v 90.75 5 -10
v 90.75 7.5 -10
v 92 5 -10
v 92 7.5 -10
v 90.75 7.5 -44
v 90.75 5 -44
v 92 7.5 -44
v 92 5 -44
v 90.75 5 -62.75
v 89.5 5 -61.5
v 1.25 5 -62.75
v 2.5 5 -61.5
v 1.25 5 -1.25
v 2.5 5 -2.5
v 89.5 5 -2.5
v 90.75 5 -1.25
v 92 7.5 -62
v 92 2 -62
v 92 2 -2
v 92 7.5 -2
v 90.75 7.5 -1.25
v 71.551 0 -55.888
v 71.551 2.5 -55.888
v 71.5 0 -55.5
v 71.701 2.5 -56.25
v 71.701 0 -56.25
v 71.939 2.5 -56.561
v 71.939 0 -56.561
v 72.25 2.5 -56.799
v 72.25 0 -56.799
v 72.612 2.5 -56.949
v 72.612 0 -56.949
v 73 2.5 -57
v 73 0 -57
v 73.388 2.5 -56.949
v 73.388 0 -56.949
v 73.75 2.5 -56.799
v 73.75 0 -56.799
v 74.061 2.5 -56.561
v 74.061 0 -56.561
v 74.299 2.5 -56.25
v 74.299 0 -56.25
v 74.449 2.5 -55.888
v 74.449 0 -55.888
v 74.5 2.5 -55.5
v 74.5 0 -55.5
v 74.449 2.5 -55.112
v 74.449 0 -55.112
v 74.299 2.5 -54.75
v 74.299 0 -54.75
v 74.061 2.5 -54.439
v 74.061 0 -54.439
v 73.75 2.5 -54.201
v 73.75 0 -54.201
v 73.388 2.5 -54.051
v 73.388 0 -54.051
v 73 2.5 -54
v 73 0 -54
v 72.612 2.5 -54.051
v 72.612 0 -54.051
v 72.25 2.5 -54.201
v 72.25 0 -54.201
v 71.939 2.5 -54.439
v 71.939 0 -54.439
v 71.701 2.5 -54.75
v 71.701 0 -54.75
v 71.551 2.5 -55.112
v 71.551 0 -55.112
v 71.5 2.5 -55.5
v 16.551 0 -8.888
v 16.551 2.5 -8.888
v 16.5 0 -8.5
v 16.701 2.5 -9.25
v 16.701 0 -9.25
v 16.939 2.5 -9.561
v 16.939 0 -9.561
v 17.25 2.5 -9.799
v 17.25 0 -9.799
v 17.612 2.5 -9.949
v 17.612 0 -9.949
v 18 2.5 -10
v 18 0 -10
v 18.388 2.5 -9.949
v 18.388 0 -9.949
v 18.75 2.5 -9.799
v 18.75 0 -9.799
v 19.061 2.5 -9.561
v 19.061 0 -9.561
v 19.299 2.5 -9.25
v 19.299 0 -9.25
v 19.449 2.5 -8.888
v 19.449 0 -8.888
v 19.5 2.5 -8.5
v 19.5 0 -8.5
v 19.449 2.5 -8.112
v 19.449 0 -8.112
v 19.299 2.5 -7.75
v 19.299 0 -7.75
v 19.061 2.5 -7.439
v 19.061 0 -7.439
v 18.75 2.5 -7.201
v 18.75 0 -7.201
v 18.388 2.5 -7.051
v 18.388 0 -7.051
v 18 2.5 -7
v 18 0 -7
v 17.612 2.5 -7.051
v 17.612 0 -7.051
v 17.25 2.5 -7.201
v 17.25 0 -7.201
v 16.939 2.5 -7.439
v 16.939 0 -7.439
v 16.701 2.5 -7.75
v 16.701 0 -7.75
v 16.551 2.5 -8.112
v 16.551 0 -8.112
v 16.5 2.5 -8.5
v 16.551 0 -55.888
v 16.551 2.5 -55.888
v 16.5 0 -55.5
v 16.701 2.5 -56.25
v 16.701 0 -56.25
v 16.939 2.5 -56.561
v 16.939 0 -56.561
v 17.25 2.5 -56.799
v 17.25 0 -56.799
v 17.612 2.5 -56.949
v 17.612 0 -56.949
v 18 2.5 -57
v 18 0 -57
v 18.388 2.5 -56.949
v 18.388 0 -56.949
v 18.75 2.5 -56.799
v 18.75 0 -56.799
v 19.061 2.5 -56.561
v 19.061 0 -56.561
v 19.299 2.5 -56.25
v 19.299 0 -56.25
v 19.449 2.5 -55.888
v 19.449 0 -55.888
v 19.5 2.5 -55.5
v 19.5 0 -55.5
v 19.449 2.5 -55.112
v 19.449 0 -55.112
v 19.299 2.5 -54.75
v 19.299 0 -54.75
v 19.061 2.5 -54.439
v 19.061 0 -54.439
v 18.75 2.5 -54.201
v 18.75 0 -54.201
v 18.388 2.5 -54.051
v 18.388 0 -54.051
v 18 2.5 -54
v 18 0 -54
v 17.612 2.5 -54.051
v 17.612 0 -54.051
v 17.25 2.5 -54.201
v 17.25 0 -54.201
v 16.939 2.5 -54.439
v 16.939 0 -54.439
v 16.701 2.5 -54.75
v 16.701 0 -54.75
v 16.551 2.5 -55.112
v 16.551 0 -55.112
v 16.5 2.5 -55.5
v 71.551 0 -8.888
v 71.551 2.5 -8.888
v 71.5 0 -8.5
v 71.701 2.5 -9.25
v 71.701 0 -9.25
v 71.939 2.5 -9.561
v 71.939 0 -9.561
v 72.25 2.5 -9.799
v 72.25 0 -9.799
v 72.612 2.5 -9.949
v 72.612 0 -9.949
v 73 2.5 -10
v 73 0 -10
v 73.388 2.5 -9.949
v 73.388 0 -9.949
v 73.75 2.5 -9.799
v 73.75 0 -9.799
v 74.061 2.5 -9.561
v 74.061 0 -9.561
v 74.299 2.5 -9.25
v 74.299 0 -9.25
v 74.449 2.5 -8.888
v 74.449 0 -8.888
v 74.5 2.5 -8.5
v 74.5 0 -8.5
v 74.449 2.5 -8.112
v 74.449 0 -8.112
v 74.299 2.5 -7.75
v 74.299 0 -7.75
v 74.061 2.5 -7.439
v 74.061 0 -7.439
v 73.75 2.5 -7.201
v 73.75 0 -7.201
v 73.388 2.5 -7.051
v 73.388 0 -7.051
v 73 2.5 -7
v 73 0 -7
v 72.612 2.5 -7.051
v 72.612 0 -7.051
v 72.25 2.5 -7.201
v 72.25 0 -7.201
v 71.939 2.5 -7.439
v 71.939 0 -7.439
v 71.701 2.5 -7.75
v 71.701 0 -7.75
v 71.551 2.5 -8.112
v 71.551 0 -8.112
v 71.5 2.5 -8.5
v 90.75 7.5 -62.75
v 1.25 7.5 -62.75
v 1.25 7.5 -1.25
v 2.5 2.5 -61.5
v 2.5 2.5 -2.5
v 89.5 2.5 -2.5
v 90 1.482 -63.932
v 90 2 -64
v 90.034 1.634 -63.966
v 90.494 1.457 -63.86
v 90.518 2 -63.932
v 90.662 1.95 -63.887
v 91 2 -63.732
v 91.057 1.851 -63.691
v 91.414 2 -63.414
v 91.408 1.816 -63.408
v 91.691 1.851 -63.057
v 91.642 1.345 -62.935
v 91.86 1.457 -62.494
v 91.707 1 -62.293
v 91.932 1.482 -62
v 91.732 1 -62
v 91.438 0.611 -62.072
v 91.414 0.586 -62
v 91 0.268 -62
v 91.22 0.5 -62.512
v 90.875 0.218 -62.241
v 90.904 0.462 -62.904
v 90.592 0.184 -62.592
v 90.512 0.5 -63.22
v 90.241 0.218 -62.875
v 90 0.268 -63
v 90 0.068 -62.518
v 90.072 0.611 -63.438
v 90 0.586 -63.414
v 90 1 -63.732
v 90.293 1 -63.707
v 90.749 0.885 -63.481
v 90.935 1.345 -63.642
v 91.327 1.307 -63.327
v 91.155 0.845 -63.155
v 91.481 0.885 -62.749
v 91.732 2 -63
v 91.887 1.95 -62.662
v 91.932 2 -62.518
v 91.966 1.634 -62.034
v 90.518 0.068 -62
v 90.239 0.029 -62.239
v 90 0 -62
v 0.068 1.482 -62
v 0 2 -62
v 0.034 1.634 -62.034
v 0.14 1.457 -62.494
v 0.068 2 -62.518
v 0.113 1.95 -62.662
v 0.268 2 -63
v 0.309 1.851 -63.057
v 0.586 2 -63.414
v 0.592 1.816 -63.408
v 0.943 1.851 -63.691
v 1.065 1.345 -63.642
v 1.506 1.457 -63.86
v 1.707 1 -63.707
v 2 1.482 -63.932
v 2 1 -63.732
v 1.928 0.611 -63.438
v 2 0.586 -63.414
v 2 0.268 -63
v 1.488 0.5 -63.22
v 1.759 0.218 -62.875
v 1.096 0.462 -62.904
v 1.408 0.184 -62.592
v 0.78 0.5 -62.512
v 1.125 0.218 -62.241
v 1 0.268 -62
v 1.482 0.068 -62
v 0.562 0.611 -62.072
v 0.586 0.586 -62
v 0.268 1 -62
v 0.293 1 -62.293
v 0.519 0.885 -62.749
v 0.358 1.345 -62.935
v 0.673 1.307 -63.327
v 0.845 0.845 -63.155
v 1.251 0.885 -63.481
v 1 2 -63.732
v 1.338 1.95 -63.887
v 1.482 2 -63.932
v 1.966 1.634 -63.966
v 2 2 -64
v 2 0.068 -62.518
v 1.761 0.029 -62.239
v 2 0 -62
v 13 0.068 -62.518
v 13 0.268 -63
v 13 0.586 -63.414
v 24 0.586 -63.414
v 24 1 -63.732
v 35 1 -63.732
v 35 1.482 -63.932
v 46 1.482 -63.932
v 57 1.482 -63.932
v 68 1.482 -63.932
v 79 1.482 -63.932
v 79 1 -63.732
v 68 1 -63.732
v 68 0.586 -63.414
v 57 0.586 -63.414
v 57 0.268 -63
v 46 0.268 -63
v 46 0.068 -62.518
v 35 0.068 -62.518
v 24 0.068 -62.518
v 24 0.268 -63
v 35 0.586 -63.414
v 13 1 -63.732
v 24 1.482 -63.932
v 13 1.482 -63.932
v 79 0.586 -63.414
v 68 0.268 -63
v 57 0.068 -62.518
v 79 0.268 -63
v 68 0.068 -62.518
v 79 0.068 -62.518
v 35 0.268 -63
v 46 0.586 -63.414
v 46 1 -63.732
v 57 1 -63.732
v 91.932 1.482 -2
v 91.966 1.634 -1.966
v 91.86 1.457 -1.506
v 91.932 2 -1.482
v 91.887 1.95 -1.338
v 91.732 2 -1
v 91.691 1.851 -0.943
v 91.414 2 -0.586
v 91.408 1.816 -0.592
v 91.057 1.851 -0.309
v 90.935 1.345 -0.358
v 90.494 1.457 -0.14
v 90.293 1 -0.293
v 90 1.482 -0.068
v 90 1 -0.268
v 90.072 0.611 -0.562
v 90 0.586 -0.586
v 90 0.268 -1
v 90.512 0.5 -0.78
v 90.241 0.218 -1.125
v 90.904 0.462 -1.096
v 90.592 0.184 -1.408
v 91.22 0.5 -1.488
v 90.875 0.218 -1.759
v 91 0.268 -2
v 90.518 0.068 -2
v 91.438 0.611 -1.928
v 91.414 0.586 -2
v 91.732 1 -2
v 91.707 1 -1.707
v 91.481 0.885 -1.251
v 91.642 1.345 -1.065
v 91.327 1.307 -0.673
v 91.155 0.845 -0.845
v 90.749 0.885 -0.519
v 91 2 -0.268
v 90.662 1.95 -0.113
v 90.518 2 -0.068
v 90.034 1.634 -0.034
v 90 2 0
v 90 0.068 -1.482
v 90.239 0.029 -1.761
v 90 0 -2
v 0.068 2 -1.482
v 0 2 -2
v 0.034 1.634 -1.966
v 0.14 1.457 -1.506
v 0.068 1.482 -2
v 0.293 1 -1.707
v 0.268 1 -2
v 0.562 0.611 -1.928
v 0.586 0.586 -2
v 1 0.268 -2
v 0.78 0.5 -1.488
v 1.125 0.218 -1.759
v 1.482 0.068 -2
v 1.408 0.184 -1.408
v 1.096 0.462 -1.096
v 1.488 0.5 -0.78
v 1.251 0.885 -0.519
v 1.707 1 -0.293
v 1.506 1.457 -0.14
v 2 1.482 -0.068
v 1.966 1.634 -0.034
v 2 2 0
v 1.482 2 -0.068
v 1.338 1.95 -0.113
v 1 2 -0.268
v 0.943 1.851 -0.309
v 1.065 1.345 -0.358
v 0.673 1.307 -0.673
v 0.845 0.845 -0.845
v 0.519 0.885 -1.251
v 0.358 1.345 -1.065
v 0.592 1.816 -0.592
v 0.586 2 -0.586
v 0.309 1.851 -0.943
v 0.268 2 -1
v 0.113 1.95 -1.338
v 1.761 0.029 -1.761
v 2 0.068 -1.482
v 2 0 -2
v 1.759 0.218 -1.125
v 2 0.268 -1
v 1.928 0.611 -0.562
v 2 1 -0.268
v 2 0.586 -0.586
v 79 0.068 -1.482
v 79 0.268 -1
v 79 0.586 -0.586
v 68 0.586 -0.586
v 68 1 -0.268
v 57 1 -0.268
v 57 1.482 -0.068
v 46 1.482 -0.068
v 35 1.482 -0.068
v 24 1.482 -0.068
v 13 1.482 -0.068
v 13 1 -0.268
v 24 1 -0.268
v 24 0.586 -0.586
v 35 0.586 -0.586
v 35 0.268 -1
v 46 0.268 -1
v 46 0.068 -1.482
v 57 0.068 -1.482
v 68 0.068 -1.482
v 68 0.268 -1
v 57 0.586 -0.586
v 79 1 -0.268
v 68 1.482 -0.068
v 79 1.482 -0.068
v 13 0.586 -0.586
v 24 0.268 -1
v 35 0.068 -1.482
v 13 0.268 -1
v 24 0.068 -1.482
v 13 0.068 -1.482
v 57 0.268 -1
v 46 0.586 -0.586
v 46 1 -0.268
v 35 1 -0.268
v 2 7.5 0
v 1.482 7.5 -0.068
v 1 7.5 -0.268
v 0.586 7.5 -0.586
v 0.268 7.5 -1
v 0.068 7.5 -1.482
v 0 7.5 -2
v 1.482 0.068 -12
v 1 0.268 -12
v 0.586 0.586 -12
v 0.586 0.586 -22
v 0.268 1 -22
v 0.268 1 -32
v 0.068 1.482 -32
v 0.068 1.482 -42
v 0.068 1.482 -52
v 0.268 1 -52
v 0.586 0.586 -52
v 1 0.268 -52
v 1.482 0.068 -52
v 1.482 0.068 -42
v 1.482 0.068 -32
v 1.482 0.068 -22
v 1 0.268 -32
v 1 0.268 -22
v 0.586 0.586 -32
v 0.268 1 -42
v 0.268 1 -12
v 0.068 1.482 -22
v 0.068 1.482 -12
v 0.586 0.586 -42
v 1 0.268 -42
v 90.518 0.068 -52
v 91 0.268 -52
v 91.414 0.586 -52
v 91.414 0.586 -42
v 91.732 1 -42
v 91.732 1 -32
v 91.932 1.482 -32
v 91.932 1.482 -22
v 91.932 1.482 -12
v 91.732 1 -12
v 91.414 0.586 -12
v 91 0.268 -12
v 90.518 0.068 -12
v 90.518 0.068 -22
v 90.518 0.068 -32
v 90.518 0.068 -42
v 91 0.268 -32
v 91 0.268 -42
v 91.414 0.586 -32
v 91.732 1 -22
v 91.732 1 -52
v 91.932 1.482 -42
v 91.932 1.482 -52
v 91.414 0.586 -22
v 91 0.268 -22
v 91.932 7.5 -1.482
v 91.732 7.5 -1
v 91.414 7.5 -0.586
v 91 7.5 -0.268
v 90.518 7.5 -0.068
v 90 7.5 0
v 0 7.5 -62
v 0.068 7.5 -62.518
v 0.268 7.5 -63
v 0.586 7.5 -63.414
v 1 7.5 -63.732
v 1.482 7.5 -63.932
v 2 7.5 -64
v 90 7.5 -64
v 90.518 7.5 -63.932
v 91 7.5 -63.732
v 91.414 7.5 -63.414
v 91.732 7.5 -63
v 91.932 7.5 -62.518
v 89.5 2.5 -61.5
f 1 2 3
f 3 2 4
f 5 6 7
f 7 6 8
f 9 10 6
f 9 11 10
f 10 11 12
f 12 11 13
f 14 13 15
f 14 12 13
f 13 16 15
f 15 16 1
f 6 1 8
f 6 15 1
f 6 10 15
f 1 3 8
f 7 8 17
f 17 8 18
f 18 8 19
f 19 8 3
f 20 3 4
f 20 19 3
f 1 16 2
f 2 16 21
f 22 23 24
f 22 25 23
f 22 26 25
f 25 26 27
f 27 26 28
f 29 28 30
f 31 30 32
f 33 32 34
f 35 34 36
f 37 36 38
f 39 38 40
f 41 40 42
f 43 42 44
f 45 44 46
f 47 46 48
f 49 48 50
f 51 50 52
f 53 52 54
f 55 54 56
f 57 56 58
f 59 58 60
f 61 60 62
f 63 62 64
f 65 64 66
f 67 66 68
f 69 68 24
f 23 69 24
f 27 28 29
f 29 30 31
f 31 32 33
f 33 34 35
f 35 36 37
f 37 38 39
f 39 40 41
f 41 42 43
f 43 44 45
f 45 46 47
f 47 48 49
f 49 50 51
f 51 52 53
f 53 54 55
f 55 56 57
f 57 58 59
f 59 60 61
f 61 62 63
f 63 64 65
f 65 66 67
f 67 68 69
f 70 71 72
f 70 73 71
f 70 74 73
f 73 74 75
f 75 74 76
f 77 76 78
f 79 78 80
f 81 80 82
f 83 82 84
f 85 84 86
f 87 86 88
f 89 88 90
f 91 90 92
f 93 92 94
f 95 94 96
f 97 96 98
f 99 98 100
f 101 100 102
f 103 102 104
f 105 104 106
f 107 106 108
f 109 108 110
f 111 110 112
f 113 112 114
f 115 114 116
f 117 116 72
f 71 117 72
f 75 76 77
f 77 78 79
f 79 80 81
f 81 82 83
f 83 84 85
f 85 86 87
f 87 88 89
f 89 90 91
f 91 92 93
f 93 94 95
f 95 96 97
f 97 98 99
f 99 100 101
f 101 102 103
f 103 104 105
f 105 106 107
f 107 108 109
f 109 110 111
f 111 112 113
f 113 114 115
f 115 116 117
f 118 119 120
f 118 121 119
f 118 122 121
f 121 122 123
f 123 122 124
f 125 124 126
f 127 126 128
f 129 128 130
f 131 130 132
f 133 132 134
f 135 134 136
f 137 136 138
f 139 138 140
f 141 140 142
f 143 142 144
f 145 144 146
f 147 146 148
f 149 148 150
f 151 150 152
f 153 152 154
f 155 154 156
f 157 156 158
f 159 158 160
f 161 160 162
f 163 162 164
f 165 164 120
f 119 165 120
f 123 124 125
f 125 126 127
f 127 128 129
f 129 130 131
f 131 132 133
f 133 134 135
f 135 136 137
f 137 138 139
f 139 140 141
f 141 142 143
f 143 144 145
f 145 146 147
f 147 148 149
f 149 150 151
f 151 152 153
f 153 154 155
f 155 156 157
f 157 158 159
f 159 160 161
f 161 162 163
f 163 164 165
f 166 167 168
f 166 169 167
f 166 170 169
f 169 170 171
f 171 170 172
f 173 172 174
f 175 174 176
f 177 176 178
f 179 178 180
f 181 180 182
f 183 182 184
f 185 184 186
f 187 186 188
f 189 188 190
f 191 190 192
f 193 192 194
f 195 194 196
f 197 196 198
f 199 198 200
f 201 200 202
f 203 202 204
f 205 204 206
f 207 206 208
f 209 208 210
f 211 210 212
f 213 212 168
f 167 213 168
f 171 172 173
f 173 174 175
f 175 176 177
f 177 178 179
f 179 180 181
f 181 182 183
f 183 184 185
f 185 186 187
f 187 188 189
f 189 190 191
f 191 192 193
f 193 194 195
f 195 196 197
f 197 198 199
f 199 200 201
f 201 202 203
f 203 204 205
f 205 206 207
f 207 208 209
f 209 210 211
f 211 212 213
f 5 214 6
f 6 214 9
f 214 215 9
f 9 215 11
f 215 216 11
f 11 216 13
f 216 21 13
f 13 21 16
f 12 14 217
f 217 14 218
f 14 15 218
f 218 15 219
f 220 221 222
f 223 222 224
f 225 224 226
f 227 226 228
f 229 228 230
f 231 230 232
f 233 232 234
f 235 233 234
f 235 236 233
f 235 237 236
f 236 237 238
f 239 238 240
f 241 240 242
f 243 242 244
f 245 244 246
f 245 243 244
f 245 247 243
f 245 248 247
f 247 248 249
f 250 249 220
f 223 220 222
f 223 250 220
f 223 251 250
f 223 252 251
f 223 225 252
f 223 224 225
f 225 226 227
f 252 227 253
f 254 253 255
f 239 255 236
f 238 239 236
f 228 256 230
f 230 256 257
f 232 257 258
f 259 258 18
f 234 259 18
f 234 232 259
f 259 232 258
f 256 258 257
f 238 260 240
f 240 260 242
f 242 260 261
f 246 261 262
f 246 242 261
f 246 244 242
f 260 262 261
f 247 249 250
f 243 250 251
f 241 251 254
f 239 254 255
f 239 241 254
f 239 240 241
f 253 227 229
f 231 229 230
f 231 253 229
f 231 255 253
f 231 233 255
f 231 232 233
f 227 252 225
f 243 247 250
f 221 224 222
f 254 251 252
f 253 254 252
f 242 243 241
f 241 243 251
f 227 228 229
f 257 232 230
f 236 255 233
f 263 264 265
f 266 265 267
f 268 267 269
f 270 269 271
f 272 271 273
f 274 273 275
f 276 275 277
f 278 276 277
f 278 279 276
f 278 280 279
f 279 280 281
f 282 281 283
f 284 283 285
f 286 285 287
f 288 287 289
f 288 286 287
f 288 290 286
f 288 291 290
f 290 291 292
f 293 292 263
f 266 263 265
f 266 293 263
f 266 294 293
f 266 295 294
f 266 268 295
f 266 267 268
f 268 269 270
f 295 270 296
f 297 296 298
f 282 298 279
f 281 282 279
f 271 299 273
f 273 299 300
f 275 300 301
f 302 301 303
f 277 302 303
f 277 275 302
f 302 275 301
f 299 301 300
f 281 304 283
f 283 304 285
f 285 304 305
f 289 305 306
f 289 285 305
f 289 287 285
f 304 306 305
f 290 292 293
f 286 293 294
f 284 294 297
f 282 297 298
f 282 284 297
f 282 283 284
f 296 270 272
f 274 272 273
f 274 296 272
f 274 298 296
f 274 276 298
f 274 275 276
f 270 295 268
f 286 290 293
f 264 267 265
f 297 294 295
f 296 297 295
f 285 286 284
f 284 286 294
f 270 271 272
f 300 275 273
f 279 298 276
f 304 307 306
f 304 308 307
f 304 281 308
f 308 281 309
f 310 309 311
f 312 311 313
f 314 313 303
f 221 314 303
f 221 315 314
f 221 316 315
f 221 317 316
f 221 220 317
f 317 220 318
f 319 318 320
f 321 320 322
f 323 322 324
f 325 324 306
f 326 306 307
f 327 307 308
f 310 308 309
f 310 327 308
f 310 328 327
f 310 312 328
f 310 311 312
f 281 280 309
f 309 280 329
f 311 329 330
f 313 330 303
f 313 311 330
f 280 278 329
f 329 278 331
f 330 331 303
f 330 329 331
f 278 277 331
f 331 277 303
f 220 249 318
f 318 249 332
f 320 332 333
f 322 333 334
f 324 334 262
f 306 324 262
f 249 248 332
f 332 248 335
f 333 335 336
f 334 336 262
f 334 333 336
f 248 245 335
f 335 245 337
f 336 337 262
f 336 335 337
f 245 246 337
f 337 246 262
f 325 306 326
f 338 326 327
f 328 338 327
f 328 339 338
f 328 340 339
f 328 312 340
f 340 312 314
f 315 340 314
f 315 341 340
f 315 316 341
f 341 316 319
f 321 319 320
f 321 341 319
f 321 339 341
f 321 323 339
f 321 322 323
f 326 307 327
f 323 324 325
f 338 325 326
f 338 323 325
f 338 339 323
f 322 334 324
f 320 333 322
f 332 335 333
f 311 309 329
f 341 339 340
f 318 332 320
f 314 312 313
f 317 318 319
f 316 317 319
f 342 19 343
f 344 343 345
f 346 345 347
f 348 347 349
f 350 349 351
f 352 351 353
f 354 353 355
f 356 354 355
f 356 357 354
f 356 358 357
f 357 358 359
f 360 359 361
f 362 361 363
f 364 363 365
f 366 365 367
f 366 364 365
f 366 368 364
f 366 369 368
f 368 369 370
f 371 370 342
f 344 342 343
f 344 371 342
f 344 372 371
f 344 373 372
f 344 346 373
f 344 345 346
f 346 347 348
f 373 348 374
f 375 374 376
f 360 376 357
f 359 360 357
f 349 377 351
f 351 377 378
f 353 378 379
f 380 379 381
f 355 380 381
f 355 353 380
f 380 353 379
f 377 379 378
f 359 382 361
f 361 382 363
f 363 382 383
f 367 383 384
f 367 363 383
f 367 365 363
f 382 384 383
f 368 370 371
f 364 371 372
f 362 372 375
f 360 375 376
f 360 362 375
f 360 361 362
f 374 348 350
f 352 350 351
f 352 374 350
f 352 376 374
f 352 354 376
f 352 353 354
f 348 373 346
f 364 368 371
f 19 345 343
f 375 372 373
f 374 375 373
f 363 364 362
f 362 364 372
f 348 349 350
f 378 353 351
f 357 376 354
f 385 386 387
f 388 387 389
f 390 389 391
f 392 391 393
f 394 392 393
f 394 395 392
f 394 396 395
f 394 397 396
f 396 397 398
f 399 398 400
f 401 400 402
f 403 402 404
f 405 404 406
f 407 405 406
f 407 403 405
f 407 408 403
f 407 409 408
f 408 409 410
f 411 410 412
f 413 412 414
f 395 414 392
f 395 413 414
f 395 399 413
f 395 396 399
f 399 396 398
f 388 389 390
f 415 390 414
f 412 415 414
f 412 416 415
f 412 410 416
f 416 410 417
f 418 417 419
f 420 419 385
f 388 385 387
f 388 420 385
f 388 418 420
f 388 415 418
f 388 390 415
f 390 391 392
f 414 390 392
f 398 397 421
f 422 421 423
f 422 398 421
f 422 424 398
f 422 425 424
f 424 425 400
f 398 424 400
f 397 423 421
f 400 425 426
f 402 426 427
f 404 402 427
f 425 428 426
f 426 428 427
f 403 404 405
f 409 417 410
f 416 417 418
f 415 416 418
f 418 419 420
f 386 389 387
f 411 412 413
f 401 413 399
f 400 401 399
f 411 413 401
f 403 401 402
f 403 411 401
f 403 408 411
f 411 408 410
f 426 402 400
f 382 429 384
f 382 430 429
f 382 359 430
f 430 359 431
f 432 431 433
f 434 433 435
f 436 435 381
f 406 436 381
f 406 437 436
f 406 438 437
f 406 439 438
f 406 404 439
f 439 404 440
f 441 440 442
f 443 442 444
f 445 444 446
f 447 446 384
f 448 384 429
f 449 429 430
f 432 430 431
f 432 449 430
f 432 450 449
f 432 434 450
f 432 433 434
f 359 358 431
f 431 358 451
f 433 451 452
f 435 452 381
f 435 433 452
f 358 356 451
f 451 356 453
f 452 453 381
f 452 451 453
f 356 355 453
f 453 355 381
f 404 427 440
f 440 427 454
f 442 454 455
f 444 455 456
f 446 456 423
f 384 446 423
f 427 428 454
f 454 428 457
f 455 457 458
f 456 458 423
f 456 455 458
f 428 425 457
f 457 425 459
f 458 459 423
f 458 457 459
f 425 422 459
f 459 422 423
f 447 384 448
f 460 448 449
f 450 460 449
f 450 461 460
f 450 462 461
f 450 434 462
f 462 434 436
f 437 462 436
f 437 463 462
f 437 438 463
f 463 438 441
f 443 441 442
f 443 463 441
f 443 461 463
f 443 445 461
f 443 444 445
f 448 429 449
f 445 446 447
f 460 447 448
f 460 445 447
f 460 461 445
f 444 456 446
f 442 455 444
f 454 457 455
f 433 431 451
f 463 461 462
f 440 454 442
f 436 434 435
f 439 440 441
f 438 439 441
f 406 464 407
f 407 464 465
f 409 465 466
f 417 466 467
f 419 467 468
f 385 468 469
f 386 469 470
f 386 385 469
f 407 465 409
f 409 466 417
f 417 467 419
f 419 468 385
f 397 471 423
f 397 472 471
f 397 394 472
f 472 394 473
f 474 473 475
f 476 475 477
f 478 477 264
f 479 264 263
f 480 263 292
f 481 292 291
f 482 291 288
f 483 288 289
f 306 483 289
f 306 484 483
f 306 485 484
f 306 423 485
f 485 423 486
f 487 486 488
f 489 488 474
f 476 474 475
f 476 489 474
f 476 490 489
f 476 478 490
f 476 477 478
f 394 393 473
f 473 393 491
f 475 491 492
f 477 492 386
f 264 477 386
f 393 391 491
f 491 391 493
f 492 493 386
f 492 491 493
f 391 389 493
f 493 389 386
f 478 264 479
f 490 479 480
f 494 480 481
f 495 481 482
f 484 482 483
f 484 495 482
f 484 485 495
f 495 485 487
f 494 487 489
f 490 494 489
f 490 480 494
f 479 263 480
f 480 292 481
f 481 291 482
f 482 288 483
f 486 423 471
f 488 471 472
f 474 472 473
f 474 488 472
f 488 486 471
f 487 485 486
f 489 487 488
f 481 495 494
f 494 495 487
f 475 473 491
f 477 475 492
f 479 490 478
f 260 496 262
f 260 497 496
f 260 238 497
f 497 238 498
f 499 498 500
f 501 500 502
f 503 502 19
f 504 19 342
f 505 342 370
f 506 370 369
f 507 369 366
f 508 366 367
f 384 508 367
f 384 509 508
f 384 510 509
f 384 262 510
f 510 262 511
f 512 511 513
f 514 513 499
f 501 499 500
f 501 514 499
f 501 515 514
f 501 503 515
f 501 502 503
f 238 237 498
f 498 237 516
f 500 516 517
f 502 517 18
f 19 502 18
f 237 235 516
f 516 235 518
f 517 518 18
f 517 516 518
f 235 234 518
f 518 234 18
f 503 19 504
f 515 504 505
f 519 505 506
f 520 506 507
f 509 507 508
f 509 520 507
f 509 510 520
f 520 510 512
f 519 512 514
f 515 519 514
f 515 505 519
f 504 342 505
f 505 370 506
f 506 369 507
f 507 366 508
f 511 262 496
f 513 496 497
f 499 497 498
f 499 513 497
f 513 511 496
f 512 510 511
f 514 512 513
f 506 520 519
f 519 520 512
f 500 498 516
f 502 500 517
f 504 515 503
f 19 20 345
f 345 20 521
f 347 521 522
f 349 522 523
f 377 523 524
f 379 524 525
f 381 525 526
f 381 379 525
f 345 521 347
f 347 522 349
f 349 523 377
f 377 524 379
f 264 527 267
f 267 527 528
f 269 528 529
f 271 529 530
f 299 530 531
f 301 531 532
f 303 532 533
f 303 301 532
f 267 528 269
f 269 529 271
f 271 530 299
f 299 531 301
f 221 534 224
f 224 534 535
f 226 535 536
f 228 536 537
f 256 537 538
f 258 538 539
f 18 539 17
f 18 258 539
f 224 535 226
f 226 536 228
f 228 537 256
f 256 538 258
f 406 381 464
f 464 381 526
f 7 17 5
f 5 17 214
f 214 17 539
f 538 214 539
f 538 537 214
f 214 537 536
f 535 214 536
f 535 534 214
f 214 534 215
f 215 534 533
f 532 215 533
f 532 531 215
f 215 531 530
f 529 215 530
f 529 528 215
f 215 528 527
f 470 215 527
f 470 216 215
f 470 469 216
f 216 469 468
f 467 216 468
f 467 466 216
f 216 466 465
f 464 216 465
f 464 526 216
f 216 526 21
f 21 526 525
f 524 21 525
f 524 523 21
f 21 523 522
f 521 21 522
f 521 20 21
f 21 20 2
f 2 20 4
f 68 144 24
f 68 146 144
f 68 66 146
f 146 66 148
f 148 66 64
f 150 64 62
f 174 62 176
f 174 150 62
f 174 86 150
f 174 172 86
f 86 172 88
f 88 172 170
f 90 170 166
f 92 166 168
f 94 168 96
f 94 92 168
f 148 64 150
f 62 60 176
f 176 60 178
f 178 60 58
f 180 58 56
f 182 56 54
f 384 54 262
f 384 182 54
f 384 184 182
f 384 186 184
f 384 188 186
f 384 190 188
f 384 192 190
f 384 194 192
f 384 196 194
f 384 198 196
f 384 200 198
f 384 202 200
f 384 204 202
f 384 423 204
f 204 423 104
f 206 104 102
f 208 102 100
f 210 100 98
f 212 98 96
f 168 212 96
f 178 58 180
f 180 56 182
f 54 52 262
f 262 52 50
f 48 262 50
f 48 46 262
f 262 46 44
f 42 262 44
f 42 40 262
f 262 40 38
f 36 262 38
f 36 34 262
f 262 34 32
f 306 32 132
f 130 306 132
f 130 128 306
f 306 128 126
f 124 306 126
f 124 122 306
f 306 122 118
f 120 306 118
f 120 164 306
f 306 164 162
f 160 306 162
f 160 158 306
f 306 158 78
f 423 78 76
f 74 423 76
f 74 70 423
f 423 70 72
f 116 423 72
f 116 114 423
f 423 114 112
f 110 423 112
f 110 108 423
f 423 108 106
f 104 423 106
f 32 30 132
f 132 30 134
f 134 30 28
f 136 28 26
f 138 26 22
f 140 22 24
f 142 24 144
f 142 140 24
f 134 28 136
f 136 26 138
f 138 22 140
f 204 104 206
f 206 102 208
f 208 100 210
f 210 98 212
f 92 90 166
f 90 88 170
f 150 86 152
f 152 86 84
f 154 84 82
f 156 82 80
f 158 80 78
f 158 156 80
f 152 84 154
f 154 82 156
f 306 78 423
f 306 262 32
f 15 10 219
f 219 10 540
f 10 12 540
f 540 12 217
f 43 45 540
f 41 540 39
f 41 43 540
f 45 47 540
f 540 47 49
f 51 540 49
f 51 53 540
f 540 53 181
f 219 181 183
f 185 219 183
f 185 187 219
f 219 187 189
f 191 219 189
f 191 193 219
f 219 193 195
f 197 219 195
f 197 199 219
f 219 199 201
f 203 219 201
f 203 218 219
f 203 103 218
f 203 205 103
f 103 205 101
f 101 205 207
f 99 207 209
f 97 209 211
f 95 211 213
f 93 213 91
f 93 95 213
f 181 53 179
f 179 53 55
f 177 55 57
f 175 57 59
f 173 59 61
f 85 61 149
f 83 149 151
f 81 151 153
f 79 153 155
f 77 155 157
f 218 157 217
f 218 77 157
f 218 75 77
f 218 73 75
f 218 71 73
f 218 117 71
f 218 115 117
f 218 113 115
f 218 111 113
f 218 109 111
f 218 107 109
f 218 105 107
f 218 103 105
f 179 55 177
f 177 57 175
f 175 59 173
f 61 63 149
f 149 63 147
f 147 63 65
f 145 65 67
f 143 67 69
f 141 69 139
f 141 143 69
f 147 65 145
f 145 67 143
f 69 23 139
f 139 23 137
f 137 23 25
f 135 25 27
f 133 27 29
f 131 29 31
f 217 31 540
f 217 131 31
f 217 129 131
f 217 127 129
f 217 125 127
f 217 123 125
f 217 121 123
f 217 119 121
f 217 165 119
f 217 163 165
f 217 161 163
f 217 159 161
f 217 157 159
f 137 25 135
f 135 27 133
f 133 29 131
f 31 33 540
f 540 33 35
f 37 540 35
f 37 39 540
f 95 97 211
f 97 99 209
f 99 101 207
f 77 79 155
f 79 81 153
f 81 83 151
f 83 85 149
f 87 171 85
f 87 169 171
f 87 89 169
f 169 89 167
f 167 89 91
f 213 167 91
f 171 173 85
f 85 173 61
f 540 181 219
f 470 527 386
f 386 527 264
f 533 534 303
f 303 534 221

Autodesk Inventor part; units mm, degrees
ref_plane "YZ Plane" through (0, 0, 0) normal (1, 0, 0) x (0, 1, 0)
ref_plane "XZ Plane" through (0, 0, 0) normal (0, 1, 0) x (-1, 0, 0)
ref_plane "XY Plane" through (0, 0, 0) normal (0, 0, 1) x (1, 0, 0)
sketch "Sketch1" plane through (0, 0, 0) normal (0, 1, 0) x (-1, 0, 0)
  line L0 (0, 0) -> (-92, 0)
  line L1 (-92, 0) -> (-92, -64)
  line L2 (-92, -64) -> (0, -64)
  line L3 (0, -64) -> (0, 0)
  dimension "d0" = 64
  dimension "d1" = 92
extrude "Extrusion1" add sketch "Sketch1" along normal blind 7.5
sketch "Sketch2" plane through (0, 7.5, 0) normal (0, 1, 0) x (1, 0, 0)
  line L0 (2.5, 2.5) -> (89.5, 2.5)
  line L1 (89.5, 2.5) -> (89.5, 61.5)
  line L2 (89.5, 61.5) -> (2.5, 61.5)
  line L3 (2.5, 61.5) -> (2.5, 2.5)
  line L4 (0, 64) -> (0, 0) projected
  line L5 (0, 0) -> (92, 0) projected
  line L6 (92, 0) -> (92, 64) projected
  line L7 (92, 64) -> (0, 64) projected
  dimension "d4" = 2.5
  dimension "d5" = 2.5
  dimension "d6" = 2.5
  dimension "d7" = 2.5
extrude "Extrusion2" cut sketch "Sketch2" against normal blind 5 contours L3 L2 L1 L0
fillet "Fillet1" radius 2 8 edges at (0, 3.75, 0) (46, 0, 0) (92, 3.75, 0) (92, 0, -32) (92, 3.75, -64) (46, 0, -64) (0, 3.75, -64) (0, 0, -32)
sketch "Sketch3" plane through (0, 7.5, 0) normal (0, 1, 0) x (1, 0, 0)
  line L0 (1.25, 1.25) -> (90.75, 1.25)
  line L1 (90.75, 1.25) -> (90.75, 62.75)
  line L2 (90.75, 62.75) -> (1.25, 62.75)
  line L3 (1.25, 62.75) -> (1.25, 1.25)
  line L4 (0, 62) -> (0, 2) projected
  line L5 (2, 0) -> (90, 0) projected
  line L6 (92, 2) -> (92, 62) projected
  line L7 (90, 64) -> (2, 64) projected
  point P0 (0, 0)
  dimension "d11" = 1.25
  dimension "d12" = 1.25
  dimension "d13" = 1.25
  dimension "d14" = 1.25
extrude "Extrusion3" cut sketch "Sketch3" against normal blind 2.5
sketch "Sketch4" plane through (0, 2.5, 0) normal (0, 1, 0) x (1, 0, 0)
  line L0 (5, 5) -> (87, 5)
  line L1 (87, 5) -> (87, 59)
  line L2 (87, 59) -> (5, 59)
  line L3 (5, 59) -> (5, 5)
  line L4 (2.5, 2.5) -> (2.5, 61.5) projected
  line L5 (89.5, 2.5) -> (2.5, 2.5) projected
  line L6 (2.5, 61.5) -> (89.5, 61.5) projected
  line L7 (89.5, 61.5) -> (89.5, 2.5) projected
  line L8 (18, 55.5) -> (73, 55.5)
  line L9 (73, 55.5) -> (73, 8.5)
  line L10 (73, 8.5) -> (18, 8.5)
  line L11 (18, 8.5) -> (18, 55.5)
  point P0 (0, 0)
  dimension "d17" = 2.5
  dimension "d18" = 2.5
  dimension "d19" = 2.5
  dimension "d20" = 2.5
  dimension "d21" = 14
  dimension "d22" = 13
  dimension "d23" = 54
  dimension "d24" = 82
  dimension "d25" = 3.5
  dimension "d26" = 3.5
hole "Hole1" at (18, 2.5, -8.5) at (18, 2.5, -55.5) at (73, 2.5, -55.5) at (73, 2.5, -8.5) direction (0, -1, 0) diameter 3 end through all
sketch "Sketch5" plane through (92, 2, -2) normal (1, 0, 0) x (0, 0, -1)
  line L0 (8, 5.5) -> (42, 5.5)
  line L1 (42, 5.5) -> (42, 3)
  line L2 (42, 3) -> (8, 3)
  line L3 (8, 3) -> (8, 5.5)
  line L4 (0, 5.5) -> (60, 5.5) projected
  line L5 (0, 0) -> (0, 5.5) projected
  line L6 (60, 5.5) -> (60, 0) projected
  point P0 (-2, -2)
  dimension "d34" = 0
  dimension "d35" = 8
  dimension "d36" = 18
  dimension "d37" = 2.5
extrude "Extrusion4" cut sketch "Sketch5" against normal blind 2.5
